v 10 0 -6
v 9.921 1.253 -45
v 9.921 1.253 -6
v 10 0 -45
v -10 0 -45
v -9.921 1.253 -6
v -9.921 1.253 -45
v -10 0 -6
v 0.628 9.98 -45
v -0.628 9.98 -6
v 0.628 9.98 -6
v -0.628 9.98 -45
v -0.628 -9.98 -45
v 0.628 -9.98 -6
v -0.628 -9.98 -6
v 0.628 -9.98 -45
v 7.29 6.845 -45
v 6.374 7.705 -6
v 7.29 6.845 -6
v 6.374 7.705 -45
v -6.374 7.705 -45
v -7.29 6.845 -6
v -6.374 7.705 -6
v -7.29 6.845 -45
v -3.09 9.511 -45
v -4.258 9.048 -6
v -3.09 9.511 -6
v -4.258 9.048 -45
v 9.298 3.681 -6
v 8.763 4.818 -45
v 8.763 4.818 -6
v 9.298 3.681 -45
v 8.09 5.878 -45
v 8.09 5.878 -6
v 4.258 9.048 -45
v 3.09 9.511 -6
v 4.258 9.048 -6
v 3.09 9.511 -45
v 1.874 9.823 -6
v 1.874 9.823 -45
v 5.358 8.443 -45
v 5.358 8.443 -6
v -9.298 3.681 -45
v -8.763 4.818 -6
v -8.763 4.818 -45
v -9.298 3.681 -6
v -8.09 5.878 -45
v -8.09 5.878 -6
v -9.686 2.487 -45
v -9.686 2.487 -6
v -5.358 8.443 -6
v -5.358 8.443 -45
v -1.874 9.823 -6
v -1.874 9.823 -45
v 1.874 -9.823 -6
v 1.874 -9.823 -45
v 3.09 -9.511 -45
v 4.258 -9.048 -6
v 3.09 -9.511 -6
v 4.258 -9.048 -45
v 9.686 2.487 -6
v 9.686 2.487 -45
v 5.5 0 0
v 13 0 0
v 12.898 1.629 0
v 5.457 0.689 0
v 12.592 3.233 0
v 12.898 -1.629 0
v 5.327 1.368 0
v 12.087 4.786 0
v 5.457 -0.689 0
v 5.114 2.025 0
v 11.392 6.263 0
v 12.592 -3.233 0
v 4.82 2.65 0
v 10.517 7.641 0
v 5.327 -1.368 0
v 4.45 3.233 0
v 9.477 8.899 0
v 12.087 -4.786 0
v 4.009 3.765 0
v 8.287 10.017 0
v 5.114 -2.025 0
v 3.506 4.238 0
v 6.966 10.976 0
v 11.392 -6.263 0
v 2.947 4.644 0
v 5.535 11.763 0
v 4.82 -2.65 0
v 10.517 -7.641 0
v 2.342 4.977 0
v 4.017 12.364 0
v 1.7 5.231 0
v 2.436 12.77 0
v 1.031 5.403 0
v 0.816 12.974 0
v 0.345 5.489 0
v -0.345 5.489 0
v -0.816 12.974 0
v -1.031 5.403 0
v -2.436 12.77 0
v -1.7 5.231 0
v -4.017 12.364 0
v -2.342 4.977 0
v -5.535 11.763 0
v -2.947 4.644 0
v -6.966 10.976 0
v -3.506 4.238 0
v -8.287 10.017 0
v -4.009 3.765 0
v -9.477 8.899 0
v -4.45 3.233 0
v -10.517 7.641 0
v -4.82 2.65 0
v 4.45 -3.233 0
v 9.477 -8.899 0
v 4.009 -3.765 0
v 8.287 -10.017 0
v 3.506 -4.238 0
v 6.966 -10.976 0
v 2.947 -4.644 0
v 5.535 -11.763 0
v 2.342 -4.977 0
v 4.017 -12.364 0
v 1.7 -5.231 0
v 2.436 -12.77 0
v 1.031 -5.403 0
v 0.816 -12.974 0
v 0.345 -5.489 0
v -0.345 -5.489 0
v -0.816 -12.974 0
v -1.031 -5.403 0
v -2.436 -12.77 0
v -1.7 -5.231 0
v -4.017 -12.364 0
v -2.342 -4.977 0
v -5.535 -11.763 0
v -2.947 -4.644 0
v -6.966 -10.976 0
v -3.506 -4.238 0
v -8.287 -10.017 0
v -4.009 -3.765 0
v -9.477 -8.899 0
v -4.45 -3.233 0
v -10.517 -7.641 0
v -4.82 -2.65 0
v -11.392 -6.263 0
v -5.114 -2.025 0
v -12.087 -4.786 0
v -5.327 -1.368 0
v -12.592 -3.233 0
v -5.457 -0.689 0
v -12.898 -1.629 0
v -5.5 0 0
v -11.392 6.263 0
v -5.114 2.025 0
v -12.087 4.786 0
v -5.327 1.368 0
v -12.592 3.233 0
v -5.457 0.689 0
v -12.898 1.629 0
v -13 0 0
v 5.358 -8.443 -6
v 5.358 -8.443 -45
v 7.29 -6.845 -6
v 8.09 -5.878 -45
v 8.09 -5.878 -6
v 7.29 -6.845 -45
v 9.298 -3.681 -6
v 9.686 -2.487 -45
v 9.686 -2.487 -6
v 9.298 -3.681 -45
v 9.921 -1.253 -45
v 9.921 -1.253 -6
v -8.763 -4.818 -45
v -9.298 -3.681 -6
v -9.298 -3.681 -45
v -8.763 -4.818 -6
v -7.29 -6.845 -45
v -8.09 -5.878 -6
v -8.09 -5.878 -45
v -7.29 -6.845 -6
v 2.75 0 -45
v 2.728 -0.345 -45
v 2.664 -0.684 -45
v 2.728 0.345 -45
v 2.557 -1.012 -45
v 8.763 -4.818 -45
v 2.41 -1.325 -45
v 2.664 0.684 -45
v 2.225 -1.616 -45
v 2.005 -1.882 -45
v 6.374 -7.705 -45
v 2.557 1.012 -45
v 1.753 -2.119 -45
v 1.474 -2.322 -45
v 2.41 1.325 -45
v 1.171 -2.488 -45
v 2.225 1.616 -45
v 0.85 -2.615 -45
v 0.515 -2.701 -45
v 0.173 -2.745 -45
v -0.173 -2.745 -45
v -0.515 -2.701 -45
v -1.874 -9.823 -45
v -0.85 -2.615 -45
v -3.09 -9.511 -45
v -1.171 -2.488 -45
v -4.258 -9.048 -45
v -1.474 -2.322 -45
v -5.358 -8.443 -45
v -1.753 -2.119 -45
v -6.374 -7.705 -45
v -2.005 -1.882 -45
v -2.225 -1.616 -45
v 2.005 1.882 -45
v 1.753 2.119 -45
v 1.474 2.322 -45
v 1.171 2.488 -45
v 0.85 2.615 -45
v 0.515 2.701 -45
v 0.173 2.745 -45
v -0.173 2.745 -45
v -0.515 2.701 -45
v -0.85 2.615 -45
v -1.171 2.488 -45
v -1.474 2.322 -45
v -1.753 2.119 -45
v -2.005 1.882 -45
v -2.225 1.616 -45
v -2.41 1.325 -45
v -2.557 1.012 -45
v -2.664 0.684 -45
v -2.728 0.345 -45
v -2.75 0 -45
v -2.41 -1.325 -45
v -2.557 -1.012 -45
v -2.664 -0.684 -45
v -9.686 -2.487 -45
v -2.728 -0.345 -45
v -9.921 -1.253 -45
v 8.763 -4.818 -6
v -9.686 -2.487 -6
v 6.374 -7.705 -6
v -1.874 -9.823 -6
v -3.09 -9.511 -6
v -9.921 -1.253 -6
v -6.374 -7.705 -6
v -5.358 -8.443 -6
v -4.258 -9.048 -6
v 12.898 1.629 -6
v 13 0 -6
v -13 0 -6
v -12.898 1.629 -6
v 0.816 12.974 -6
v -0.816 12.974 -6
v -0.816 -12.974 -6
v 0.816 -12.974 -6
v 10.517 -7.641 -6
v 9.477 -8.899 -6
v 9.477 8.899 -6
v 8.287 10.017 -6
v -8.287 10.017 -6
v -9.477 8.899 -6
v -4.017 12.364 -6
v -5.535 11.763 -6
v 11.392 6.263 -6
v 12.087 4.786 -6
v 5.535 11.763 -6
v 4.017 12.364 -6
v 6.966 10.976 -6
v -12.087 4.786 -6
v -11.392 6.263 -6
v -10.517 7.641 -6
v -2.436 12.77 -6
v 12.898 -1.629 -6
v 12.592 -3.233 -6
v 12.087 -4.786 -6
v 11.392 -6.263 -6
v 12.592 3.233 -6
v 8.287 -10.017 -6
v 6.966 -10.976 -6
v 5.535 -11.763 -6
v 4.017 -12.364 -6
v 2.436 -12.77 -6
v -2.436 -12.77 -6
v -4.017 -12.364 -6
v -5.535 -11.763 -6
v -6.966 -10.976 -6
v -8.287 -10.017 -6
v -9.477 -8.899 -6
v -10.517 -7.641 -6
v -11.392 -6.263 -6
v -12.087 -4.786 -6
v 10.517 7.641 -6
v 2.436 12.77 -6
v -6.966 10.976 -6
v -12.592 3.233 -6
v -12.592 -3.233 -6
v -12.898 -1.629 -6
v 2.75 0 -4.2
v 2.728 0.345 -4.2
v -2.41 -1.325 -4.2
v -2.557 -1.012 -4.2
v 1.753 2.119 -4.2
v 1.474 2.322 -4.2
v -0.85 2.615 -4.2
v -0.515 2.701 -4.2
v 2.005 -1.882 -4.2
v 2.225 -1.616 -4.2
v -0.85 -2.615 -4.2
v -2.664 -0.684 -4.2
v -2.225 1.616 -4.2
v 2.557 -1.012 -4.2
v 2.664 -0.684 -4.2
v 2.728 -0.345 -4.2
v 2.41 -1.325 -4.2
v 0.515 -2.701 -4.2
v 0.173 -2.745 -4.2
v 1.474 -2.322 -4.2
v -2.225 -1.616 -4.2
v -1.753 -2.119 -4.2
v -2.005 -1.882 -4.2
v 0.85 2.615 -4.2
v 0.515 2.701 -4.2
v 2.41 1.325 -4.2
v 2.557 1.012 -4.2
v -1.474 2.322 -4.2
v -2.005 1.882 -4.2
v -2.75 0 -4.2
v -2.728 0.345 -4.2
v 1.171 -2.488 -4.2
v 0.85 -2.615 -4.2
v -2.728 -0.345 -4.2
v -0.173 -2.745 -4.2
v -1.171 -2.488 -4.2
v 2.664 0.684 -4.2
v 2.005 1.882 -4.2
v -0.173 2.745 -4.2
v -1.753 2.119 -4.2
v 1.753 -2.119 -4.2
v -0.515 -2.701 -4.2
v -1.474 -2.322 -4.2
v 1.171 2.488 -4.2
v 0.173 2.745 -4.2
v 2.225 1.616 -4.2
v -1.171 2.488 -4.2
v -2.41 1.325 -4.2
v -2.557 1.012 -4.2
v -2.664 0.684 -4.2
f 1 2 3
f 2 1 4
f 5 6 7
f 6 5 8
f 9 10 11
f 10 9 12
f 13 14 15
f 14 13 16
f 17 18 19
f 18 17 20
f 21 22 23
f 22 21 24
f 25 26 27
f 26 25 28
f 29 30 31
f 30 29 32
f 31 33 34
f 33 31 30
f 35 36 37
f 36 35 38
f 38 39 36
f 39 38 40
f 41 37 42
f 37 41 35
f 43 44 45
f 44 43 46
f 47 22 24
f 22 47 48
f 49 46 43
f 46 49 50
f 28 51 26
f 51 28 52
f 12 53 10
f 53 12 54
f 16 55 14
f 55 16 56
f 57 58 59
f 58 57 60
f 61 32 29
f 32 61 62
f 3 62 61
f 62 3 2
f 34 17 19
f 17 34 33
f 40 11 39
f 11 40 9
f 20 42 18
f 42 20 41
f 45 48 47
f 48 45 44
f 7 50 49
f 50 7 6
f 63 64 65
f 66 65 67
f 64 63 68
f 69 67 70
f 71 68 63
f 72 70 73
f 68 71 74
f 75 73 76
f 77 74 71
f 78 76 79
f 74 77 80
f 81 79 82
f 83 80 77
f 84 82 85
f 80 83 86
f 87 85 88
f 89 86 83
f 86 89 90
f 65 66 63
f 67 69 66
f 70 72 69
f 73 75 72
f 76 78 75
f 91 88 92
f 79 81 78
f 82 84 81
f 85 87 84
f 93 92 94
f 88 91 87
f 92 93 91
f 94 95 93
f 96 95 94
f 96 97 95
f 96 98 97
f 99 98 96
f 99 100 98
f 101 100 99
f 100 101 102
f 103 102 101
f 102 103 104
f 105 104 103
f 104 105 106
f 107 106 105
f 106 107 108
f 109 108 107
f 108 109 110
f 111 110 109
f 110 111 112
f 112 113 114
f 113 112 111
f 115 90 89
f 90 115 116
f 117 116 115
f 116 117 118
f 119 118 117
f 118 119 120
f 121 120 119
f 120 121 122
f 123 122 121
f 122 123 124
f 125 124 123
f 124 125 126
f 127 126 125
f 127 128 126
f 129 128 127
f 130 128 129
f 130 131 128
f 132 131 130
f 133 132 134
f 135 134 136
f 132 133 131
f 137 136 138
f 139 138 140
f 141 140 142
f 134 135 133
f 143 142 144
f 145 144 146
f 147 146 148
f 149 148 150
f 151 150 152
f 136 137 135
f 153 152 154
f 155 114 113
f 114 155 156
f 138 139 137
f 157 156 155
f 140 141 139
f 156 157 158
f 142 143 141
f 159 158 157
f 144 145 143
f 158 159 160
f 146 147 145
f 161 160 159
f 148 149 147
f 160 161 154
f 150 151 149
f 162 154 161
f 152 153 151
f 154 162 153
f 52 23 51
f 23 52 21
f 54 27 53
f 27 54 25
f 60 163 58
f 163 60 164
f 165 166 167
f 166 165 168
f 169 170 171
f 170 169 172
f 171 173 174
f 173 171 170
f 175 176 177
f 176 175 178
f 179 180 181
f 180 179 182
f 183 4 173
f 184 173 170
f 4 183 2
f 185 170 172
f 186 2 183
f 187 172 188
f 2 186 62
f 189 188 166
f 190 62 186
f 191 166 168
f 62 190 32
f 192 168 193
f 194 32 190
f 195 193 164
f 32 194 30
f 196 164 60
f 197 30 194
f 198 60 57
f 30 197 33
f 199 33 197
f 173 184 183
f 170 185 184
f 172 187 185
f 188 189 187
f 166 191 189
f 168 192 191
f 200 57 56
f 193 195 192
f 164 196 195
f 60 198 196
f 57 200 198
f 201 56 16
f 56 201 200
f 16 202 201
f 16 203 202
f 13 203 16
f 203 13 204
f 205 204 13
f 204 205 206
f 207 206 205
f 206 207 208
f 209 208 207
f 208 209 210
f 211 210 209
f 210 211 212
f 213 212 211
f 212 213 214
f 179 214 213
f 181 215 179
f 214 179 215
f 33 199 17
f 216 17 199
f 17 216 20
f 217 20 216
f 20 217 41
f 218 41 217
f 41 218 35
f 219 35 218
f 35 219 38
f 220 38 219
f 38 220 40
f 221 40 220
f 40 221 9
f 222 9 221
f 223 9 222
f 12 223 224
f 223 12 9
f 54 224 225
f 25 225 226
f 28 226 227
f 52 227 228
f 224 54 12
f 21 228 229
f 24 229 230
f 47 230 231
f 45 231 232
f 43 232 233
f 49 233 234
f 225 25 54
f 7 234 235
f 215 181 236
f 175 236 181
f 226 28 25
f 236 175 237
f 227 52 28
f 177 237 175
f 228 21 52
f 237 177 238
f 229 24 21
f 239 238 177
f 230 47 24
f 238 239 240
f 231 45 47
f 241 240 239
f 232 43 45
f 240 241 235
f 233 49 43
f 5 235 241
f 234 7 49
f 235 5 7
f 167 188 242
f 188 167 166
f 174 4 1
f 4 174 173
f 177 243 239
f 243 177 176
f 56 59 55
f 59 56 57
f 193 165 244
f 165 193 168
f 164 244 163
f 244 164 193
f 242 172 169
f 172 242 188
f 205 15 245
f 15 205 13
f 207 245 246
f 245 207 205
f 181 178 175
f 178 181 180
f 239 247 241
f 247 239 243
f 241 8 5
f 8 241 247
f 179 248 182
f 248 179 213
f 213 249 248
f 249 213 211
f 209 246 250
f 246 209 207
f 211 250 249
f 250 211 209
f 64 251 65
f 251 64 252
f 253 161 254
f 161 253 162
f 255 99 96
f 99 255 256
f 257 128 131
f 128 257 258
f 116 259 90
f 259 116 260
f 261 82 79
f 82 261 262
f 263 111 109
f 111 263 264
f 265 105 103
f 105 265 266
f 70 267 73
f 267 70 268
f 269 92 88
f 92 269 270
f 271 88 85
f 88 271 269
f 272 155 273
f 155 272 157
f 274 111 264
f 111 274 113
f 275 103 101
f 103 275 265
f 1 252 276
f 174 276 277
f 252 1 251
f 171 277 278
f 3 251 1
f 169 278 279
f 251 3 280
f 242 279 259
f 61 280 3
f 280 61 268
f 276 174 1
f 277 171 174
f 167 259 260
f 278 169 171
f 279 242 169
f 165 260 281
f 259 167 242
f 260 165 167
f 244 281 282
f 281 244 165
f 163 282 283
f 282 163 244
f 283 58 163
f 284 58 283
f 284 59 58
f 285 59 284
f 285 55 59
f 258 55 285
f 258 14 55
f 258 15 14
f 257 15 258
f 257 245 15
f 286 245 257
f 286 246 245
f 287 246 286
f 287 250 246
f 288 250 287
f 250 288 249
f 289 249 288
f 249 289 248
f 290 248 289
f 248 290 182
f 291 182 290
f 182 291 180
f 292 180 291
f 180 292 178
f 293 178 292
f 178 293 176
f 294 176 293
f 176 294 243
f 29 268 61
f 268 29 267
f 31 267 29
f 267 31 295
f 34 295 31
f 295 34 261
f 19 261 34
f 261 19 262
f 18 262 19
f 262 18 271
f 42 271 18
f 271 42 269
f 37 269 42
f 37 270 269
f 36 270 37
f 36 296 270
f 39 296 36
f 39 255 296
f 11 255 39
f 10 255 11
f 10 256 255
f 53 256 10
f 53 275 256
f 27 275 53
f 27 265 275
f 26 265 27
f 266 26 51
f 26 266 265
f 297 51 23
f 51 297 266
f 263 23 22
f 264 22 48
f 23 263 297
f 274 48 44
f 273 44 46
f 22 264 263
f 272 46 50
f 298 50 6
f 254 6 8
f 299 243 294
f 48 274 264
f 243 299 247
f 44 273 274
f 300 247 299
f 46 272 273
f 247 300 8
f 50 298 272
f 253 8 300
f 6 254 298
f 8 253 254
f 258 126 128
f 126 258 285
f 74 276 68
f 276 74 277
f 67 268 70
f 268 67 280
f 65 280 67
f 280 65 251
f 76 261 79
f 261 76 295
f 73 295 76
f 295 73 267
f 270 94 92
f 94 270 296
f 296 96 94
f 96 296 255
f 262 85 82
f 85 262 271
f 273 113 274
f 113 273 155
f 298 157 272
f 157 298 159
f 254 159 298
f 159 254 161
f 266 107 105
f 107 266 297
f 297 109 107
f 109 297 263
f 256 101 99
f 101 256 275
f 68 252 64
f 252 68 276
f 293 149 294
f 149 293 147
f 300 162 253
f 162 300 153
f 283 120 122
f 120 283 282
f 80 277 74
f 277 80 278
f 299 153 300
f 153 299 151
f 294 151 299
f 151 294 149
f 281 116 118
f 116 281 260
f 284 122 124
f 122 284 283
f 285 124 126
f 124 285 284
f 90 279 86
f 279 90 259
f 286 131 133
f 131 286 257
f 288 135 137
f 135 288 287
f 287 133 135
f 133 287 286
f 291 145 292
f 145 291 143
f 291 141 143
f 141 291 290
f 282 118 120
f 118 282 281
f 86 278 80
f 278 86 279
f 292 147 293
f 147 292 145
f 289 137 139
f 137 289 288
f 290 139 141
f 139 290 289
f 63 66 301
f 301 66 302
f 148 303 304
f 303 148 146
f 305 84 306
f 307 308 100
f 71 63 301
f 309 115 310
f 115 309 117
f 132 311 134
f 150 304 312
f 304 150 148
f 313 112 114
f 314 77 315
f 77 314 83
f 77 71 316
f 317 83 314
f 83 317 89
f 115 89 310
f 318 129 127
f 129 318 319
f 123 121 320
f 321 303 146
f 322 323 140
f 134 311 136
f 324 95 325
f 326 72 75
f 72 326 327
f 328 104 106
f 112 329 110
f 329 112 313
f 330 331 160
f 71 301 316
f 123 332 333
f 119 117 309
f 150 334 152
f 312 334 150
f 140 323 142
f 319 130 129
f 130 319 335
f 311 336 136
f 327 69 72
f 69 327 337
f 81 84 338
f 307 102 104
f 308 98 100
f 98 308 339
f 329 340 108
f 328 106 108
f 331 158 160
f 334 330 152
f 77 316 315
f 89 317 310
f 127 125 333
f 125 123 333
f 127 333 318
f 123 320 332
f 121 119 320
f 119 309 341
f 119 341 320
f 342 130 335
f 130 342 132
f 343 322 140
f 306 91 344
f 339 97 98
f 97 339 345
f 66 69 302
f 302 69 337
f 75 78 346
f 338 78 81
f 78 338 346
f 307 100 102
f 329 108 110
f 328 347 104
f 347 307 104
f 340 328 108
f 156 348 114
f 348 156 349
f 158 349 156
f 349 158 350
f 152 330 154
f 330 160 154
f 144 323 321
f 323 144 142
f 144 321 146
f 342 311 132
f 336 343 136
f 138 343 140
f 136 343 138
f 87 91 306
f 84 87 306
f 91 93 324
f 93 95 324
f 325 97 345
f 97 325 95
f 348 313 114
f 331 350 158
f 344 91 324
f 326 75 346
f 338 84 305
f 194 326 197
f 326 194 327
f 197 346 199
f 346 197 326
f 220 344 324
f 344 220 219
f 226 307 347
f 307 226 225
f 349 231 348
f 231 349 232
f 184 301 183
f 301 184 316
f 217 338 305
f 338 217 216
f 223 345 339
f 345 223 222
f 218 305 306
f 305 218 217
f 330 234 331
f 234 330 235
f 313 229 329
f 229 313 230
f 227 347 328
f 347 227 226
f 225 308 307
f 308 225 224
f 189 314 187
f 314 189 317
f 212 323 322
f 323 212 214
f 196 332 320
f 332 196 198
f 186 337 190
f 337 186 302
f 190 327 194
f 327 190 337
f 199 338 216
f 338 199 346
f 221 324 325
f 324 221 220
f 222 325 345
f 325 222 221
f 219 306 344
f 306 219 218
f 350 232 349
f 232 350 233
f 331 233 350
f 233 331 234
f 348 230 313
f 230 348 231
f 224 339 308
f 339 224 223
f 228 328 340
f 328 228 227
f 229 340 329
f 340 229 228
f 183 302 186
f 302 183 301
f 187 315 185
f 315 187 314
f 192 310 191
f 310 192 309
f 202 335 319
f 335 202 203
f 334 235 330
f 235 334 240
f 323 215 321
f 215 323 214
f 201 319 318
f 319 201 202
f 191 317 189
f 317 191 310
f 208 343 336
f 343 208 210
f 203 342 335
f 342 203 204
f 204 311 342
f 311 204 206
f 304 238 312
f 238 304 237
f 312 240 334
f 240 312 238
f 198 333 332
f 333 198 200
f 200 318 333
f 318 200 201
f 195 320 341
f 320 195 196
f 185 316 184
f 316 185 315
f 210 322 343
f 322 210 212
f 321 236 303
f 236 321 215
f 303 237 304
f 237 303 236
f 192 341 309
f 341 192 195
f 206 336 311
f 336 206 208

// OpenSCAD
$fn = 50;


difference() {
	union() {
		translate(v = [0, 0, -45.0000000000]) {
			cylinder(h = 45, r = 10.0000000000);
		}
		translate(v = [0, 0, -6.0000000000]) {
			cylinder(h = 6, r = 13.0000000000);
		}
	}
	union() {
		translate(v = [0, 0, 0]) {
			rotate(a = [0, 0, 0]) {
				difference() {
					union() {
						#translate(v = [0, 0, -45.0000000000]) {
							cylinder(h = 45, r = 2.2500000000);
						}
						#translate(v = [0, 0, -4.2000000000]) {
							cylinder(h = 4.2000000000, r = 10.0000000000, r1 = 2.7500000000, r2 = 5.5000000000);
						}
						#translate(v = [0, 0, -45.0000000000]) {
							cylinder(h = 45, r = 2.7500000000);
						}
						#translate(v = [0, 0, -45.0000000000]) {
							cylinder(h = 45, r = 2.2500000000);
						}
					}
					union();
				}
			}
		}
	}
}
